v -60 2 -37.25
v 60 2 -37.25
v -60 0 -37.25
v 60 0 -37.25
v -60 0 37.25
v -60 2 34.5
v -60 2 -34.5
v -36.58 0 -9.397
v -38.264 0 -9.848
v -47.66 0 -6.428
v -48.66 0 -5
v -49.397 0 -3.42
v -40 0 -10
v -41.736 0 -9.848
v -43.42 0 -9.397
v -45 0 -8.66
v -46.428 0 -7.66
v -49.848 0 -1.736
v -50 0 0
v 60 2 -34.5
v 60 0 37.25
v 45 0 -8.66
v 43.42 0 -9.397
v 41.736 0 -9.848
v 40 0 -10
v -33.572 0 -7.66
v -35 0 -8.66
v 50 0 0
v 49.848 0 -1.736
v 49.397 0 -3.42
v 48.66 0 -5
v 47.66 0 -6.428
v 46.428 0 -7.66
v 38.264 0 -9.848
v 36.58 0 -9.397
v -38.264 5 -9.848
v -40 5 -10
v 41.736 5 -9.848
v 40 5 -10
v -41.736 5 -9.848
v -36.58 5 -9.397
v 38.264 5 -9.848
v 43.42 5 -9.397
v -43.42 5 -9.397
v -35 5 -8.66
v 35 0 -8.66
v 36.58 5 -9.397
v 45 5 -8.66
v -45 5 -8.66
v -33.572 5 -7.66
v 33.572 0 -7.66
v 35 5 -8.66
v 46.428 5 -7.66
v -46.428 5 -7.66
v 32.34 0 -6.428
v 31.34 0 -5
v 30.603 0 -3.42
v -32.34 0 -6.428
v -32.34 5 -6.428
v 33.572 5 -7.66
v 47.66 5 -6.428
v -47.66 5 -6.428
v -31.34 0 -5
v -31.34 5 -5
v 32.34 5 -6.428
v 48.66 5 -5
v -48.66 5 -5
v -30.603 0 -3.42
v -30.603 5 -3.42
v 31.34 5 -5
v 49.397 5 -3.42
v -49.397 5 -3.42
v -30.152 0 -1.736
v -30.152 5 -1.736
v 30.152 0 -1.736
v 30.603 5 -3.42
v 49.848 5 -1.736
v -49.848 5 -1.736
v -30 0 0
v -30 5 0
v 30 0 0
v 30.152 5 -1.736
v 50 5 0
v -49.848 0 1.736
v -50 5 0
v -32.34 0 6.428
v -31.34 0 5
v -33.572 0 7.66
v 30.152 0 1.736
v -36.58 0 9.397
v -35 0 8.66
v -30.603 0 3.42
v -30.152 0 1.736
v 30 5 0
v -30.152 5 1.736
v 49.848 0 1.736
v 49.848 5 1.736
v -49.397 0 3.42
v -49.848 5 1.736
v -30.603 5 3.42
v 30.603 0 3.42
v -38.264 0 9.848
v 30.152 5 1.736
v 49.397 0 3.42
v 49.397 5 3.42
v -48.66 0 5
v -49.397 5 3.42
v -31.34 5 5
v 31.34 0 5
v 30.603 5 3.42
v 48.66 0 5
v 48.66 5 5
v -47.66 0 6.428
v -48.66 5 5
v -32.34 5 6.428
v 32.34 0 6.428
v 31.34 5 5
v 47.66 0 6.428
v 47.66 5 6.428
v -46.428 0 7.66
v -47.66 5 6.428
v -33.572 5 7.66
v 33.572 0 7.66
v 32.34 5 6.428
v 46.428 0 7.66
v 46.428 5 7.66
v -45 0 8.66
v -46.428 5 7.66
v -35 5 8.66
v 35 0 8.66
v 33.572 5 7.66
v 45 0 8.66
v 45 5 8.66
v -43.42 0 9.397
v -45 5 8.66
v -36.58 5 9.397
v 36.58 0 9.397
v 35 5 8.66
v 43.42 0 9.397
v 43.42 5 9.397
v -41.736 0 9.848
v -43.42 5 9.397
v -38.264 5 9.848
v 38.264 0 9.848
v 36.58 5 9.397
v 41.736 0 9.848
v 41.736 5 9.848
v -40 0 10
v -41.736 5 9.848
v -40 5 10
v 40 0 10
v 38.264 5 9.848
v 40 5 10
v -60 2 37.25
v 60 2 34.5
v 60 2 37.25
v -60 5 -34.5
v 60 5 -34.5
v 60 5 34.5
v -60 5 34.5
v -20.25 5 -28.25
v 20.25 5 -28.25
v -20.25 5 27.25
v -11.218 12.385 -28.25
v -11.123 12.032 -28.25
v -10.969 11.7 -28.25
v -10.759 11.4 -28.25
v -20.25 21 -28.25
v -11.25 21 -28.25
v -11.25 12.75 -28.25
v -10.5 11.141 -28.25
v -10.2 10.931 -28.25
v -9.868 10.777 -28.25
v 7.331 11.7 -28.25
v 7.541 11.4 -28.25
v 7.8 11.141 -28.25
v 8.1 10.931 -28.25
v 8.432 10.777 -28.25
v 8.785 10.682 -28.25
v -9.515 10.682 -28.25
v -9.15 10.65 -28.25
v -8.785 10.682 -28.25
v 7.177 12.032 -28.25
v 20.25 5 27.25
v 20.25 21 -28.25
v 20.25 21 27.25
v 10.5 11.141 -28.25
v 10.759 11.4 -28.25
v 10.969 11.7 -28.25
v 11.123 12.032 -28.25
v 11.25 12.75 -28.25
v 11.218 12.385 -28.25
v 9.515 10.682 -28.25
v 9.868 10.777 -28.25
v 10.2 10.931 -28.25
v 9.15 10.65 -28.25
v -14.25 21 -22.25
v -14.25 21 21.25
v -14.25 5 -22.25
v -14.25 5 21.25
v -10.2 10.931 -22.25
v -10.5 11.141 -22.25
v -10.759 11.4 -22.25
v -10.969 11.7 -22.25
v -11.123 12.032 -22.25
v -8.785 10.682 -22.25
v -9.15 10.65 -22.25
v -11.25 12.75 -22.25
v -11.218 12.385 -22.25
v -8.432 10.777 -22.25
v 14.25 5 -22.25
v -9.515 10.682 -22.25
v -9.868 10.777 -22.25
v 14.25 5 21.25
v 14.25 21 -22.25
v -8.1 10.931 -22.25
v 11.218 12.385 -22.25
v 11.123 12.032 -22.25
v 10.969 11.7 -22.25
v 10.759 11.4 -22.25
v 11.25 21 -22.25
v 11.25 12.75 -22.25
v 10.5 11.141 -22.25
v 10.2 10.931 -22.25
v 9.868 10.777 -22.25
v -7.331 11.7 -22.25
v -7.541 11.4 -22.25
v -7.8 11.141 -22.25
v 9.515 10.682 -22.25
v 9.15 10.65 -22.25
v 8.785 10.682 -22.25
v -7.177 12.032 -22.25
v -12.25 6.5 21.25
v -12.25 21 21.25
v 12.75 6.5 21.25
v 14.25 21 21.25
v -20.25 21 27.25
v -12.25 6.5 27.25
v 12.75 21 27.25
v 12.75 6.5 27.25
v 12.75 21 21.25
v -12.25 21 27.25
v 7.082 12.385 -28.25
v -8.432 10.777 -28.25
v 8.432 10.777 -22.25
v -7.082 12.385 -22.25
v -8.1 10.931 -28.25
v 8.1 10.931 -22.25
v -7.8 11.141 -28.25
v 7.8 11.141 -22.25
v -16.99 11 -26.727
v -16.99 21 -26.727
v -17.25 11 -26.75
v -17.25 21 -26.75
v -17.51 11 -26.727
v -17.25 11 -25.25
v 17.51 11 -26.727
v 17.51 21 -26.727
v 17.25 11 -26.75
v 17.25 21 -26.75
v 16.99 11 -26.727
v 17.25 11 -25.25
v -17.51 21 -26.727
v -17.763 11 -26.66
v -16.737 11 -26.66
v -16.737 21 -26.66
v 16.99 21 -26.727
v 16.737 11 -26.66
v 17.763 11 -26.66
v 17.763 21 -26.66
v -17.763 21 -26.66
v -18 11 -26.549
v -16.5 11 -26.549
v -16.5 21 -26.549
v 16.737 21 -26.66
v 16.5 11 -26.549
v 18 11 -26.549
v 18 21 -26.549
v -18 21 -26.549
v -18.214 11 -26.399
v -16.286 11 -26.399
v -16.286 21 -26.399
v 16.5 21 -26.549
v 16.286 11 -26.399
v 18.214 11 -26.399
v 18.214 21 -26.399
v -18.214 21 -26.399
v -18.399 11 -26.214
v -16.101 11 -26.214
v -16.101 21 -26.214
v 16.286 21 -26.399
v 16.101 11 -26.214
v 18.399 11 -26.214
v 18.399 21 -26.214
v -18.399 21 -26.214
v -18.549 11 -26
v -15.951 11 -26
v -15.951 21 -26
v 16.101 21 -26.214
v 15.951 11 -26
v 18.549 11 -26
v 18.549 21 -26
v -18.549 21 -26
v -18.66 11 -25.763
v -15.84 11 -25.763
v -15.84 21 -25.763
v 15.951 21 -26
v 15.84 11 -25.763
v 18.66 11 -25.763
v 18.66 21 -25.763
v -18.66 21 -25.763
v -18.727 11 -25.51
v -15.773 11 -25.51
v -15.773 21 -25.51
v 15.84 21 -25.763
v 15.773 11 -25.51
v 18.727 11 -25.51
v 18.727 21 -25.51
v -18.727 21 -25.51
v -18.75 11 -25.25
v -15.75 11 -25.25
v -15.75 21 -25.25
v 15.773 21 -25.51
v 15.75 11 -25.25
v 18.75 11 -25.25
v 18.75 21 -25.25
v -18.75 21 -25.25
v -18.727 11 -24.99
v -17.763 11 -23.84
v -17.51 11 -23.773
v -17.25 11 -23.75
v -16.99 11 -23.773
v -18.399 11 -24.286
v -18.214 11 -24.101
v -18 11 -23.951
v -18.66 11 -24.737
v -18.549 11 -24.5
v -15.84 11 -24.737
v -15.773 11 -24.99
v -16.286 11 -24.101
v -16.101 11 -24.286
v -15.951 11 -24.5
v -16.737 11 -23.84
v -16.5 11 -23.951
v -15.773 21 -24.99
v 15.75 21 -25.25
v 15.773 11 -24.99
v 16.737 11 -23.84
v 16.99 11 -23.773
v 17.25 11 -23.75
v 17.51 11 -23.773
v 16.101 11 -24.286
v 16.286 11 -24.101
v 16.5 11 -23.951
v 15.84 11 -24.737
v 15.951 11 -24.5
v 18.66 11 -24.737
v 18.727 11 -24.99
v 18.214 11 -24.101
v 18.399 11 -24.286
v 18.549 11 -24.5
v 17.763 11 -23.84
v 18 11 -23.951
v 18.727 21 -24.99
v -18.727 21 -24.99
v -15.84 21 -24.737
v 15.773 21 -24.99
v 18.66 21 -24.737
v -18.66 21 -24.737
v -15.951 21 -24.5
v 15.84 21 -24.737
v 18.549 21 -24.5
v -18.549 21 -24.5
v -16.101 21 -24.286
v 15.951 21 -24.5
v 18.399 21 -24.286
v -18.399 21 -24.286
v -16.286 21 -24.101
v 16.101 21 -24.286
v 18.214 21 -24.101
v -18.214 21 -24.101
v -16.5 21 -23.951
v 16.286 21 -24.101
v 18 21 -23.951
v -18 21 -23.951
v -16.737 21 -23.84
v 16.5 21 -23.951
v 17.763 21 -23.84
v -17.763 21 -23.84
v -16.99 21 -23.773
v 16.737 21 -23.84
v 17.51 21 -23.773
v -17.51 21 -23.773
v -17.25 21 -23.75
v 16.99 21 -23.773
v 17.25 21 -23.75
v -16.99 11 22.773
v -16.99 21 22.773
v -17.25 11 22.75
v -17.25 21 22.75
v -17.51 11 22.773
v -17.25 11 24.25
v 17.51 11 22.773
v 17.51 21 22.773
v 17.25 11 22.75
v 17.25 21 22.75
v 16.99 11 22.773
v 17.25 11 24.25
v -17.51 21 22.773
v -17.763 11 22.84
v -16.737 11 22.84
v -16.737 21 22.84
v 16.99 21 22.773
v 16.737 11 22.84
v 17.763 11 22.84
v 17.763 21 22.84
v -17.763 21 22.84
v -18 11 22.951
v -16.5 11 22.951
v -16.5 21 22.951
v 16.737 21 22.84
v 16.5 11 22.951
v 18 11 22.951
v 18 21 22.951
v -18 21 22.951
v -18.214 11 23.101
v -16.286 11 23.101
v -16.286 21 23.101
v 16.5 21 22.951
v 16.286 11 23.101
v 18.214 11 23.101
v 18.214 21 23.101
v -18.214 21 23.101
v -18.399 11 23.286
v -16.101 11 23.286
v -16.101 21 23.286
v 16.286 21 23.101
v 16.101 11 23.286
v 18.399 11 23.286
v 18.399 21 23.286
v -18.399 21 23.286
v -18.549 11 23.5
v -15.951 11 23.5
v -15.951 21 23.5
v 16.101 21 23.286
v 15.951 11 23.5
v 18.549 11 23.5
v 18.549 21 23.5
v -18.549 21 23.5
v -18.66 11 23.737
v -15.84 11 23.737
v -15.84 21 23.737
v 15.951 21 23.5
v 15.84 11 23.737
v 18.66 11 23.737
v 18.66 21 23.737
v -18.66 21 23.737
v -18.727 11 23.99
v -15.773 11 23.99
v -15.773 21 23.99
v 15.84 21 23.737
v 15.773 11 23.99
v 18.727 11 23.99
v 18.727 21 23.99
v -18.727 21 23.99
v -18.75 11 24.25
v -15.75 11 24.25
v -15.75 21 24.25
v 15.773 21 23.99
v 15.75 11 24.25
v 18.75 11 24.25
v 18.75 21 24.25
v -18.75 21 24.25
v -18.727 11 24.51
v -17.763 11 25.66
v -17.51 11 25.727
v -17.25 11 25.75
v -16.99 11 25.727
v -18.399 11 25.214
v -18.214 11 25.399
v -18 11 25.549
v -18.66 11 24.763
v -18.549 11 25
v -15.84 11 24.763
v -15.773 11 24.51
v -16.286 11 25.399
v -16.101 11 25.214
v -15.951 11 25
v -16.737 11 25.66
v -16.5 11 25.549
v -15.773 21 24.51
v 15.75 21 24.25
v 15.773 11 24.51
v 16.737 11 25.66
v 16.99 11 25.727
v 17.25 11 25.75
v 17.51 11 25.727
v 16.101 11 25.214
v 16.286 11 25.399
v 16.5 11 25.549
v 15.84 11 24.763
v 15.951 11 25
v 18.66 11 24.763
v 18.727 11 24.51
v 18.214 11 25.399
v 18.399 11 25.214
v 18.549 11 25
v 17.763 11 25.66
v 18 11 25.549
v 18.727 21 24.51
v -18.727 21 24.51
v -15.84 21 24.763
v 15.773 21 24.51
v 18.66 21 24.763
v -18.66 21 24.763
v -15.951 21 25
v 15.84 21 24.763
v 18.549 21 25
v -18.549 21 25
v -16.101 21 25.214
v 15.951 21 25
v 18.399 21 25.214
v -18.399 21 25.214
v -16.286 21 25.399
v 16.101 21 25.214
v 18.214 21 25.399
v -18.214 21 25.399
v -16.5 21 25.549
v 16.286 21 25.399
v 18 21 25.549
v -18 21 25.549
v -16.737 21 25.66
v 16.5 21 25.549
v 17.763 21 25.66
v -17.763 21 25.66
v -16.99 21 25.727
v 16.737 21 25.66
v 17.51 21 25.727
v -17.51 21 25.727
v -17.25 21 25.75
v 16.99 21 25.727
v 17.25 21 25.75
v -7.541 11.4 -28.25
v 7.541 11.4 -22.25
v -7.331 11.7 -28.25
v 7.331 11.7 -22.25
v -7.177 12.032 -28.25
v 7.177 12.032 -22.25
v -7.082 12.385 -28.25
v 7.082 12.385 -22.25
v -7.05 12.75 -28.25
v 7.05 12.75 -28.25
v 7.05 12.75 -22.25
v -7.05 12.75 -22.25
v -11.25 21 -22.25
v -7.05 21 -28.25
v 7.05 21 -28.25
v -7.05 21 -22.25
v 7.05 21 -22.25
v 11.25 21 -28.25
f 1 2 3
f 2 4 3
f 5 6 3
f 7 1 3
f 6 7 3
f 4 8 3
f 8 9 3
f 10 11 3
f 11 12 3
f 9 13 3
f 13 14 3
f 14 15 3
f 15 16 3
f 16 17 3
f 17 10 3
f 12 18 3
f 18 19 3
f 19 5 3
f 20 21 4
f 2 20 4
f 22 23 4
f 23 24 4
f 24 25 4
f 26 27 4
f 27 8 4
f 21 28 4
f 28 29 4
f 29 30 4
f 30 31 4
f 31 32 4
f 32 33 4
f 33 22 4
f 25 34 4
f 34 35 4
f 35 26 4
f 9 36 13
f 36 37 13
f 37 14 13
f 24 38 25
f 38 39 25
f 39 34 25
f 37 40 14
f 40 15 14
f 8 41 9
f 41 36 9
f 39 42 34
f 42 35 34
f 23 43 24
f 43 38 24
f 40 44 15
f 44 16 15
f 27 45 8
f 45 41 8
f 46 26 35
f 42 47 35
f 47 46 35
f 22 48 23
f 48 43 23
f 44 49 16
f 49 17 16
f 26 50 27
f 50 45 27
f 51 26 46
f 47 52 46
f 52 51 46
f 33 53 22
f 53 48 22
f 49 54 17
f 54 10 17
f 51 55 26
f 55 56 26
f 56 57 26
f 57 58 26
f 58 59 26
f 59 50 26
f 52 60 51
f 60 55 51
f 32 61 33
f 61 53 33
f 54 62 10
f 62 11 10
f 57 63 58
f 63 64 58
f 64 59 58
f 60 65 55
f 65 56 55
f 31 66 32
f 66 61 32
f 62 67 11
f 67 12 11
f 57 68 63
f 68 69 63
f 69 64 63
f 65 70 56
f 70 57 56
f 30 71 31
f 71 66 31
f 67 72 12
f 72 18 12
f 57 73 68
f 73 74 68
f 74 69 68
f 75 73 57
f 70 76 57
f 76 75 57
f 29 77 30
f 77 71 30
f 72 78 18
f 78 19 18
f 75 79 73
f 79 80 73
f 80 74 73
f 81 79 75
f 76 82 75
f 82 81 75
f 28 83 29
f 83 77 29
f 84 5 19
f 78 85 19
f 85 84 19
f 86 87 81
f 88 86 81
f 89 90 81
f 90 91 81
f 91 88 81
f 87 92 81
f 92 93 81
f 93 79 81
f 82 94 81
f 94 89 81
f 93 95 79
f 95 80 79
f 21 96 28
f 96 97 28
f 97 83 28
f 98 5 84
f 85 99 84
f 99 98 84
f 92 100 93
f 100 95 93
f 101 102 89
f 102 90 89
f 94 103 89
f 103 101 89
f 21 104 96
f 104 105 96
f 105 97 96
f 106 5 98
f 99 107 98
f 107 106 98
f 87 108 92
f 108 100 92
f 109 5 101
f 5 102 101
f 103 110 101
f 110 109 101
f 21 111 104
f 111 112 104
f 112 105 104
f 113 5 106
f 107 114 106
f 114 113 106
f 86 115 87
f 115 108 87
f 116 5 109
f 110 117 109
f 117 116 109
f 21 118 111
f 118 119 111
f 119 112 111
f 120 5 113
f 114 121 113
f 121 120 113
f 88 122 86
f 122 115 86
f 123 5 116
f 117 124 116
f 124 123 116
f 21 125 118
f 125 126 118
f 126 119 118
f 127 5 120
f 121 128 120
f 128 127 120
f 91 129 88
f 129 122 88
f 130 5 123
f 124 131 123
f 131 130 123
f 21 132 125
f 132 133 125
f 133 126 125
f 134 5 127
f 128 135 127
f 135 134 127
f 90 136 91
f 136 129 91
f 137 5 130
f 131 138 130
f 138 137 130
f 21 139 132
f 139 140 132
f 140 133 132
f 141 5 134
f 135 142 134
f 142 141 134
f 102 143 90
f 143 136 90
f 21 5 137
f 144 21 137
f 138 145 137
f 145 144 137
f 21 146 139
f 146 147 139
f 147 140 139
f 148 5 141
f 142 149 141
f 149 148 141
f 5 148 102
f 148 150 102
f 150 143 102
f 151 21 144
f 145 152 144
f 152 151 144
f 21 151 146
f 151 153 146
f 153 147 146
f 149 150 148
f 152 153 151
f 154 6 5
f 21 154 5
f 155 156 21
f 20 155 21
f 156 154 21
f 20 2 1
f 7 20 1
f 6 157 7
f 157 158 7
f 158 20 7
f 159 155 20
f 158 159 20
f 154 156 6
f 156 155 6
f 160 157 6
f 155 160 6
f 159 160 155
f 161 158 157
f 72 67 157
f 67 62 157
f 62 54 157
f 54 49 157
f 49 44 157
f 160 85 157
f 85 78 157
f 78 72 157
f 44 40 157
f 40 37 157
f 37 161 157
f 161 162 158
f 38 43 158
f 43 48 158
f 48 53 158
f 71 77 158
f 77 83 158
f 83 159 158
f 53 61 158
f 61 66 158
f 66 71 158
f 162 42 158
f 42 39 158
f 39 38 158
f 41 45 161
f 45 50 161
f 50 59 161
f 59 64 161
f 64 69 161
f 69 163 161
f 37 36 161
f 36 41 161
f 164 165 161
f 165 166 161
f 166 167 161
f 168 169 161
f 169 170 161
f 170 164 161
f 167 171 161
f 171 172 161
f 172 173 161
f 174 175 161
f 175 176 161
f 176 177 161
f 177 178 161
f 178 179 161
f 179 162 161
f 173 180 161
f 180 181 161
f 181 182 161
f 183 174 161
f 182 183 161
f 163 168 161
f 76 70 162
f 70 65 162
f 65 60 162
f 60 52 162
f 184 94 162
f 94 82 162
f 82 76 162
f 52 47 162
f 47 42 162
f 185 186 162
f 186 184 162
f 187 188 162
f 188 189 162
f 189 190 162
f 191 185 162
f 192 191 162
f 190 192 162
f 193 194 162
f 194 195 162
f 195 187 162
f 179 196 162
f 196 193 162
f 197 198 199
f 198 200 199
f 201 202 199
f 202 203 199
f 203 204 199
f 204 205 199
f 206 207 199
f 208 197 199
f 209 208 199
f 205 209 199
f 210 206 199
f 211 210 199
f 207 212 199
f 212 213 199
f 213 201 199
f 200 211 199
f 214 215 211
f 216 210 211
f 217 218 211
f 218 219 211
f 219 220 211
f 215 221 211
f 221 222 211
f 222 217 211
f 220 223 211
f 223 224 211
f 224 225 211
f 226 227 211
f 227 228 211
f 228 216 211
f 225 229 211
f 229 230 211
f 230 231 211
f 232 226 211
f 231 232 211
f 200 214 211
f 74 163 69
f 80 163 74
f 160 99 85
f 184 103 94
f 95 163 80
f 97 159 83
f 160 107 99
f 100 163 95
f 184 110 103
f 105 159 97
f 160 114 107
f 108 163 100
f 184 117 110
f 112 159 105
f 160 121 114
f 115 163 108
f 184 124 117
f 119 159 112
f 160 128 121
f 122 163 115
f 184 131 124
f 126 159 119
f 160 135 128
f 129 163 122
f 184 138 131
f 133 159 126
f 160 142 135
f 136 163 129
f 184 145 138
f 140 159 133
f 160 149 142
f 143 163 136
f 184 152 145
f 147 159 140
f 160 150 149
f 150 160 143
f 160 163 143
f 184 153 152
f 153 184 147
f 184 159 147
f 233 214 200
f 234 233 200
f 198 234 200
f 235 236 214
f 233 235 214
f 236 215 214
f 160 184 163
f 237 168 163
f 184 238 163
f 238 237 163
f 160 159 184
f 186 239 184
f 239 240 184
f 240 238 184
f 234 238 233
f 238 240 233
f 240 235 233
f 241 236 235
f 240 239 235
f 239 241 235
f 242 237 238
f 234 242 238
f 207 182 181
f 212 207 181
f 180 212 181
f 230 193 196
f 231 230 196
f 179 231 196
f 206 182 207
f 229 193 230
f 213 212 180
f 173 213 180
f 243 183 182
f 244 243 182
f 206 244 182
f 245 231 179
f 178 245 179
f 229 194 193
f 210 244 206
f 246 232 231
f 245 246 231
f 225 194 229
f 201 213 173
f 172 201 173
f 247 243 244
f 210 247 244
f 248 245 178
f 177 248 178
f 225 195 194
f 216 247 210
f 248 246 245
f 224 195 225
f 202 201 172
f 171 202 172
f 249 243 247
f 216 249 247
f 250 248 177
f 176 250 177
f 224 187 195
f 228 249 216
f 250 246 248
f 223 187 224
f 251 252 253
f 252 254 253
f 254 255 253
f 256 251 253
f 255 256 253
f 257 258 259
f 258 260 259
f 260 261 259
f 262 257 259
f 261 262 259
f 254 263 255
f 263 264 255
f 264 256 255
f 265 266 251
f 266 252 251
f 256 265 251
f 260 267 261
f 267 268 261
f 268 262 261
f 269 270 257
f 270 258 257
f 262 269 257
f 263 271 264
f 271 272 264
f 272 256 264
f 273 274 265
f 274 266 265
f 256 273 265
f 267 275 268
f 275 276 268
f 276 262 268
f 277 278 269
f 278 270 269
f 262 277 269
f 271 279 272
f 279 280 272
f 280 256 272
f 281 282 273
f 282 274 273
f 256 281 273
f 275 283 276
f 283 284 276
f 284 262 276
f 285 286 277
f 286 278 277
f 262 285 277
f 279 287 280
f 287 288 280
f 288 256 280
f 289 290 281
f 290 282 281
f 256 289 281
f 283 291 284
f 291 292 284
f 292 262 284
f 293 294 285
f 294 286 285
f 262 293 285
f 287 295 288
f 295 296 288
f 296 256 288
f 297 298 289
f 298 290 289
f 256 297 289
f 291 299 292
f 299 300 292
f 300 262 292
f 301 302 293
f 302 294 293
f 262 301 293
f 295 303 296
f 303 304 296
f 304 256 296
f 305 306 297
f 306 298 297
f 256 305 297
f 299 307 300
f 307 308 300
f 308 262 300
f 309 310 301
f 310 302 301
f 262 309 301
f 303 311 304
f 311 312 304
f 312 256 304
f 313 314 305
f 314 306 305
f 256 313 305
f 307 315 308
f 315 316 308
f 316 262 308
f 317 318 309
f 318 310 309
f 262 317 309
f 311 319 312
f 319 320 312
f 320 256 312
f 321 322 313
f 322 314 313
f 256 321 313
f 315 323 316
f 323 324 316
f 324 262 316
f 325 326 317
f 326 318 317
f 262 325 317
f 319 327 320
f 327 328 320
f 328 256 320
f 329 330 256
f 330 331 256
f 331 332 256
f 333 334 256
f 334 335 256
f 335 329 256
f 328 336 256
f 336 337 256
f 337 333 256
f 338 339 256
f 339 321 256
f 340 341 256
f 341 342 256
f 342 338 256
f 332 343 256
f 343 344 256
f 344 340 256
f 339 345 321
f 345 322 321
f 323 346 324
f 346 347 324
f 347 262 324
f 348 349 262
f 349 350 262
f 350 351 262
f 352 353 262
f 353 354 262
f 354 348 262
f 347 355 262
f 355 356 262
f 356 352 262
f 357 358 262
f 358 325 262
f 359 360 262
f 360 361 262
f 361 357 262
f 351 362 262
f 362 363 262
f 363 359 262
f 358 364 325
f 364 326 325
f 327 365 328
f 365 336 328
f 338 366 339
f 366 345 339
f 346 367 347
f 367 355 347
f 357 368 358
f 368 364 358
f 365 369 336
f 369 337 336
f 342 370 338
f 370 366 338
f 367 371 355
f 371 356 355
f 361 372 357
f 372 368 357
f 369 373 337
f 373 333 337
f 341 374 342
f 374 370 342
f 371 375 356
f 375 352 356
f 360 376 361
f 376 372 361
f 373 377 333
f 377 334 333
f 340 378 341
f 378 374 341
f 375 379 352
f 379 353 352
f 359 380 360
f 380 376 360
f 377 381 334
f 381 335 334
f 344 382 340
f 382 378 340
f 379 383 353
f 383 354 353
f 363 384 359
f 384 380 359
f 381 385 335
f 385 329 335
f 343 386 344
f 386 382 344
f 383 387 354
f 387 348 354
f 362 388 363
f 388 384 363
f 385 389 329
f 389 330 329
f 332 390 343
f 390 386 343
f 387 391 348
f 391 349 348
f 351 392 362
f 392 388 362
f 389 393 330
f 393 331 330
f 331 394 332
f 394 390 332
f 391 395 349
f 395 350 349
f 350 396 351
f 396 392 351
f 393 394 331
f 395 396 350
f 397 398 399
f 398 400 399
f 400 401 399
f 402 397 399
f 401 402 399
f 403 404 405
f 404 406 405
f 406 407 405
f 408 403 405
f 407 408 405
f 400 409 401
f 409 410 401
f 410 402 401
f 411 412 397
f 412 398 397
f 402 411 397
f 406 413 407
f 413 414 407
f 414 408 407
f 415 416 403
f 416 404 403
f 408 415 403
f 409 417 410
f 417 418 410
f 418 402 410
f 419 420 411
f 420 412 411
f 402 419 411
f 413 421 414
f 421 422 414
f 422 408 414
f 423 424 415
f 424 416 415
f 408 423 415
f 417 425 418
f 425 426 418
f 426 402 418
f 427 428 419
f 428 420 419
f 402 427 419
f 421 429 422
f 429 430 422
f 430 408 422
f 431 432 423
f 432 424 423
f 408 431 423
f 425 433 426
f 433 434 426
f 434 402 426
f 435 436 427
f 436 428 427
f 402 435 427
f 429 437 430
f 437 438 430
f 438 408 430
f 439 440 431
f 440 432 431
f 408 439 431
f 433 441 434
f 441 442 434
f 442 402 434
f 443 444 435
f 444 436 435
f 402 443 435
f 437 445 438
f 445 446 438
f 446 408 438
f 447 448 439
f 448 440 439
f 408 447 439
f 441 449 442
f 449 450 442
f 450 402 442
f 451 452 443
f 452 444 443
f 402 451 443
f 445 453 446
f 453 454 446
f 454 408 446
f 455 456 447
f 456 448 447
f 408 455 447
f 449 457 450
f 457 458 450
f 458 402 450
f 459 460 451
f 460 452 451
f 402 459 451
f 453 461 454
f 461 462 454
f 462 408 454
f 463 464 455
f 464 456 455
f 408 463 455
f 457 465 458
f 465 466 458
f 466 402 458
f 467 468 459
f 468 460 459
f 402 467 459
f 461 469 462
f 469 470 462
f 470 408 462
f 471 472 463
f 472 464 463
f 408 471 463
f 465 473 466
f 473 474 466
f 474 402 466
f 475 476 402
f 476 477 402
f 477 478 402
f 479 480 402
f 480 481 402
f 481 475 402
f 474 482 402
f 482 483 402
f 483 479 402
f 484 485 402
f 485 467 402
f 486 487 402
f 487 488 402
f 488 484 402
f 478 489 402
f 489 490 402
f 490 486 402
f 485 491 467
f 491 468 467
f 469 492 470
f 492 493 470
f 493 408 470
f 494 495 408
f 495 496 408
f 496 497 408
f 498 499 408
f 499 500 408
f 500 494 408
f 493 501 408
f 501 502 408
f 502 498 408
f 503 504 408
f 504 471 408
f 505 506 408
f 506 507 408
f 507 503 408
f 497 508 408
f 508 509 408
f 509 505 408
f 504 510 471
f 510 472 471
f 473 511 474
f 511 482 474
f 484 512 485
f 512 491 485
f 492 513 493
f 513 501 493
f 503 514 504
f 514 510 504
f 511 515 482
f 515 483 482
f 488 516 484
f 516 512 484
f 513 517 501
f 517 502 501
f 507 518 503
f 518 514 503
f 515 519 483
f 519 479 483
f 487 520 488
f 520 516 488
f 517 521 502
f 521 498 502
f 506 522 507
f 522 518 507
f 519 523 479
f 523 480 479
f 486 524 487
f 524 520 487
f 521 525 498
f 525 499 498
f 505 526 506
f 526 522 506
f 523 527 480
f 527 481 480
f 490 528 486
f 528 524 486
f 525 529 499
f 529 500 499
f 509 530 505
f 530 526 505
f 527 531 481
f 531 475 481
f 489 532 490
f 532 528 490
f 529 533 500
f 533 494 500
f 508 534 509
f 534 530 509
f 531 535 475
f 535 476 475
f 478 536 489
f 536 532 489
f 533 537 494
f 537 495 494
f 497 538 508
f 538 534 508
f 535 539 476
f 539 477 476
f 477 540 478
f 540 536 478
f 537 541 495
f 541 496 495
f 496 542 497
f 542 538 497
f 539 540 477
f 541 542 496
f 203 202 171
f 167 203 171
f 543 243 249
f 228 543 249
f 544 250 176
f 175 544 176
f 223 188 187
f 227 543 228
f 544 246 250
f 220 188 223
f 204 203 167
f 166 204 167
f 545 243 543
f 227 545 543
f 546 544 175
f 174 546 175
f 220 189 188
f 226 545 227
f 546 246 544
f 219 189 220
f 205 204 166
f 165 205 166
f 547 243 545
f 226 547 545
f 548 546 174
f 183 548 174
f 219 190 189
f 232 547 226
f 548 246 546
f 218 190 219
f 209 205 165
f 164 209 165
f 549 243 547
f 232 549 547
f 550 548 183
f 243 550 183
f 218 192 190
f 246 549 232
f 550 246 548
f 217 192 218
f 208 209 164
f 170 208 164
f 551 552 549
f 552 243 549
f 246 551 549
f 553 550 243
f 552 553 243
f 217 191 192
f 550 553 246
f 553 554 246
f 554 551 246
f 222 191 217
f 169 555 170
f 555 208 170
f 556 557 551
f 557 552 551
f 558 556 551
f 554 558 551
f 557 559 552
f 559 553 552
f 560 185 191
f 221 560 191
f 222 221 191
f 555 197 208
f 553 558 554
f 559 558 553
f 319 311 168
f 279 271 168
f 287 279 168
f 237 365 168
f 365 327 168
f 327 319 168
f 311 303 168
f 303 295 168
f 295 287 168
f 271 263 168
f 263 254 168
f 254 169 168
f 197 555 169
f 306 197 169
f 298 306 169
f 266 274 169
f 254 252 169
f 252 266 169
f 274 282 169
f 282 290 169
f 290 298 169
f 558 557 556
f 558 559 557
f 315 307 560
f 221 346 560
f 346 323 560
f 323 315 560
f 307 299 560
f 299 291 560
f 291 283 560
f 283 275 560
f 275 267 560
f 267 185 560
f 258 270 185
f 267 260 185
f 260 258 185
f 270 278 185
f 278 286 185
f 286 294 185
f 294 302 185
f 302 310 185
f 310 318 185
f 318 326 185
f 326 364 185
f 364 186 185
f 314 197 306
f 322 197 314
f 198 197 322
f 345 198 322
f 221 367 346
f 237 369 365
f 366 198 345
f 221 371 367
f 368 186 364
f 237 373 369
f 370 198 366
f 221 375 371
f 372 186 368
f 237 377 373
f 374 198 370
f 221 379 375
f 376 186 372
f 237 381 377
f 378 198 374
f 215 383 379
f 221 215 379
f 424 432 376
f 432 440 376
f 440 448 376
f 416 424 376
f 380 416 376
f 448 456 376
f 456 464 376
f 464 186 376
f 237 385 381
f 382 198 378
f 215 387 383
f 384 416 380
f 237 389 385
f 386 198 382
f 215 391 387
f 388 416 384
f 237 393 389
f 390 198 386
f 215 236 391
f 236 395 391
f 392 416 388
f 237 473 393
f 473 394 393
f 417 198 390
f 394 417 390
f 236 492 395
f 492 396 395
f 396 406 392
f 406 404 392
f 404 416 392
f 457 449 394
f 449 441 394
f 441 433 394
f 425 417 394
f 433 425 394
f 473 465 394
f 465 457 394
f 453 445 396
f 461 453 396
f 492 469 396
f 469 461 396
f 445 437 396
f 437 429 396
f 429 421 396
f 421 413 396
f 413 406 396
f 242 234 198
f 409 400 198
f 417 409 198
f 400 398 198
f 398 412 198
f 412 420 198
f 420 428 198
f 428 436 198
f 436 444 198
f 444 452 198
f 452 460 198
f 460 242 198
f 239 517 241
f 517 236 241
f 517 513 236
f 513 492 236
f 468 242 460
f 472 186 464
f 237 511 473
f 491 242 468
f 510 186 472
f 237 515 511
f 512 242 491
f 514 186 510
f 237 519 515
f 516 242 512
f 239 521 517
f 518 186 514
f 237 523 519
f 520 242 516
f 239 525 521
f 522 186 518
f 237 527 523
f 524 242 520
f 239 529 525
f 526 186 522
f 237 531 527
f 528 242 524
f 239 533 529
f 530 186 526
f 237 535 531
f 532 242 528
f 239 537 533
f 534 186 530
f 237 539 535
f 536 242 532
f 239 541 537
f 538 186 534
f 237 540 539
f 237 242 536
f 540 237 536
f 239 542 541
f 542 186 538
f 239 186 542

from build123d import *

# Parameters (mm, degrees)
SKETCH1_W               = 120
SKETCH1_H               = 74.5
BOSS_EXTRUDE1_DEPTH     = 2
SKETCH2_W               = 120
SKETCH2_H               = 69
BOSS_EXTRUDE2_DEPTH     = 3
SKETCH3_W               = 40.5
SKETCH3_H               = 55.5
SKETCH3_W_2             = 28.5
SKETCH3_H_2             = 43.5
BOSS_EXTRUDE3_DEPTH     = 16
SKETCH4_W               = 25
SKETCH4_H               = 14.5
CUT_EXTRUDE1_DEPTH      = 16
CUT_EXTRUDE2_DEPTH      = 16
SKETCH6_R               = 1.5
CUT_EXTRUDE3_DEPTH      = 10
SKETCH7_R               = 10
CUT_EXTRUDE4_DEPTH      = 17
CUT_EXTRUDE4_DEPTH_BACK = 6


with BuildPart() as part:
    # Sketch1 → Boss-Extrude1 (new body)
    with BuildSketch(Plane(origin=(0, 0, 0), x_dir=(1, 0, 0), z_dir=(0, 1, 0))):
        Rectangle(SKETCH1_W, SKETCH1_H)
    extrude(amount=BOSS_EXTRUDE1_DEPTH)

    # Sketch2 → Boss-Extrude2 (add)
    with BuildSketch(Plane(origin=(0, 2, 0), x_dir=(1, 0, 0), z_dir=(0, 1, 0))):
        Rectangle(SKETCH2_W, SKETCH2_H)
    extrude(amount=BOSS_EXTRUDE2_DEPTH)

    # Sketch3 → Boss-Extrude3 (add)
    with BuildSketch(Plane(origin=(0, 5, 0), x_dir=(1, 0, 0), z_dir=(0, 1, 0))):
        with Locations((0, 0.5)):
            Rectangle(SKETCH3_W, SKETCH3_H)
        with Locations((0, 0.5)):
            Rectangle(SKETCH3_W_2, SKETCH3_H_2, mode=Mode.SUBTRACT)
    extrude(amount=BOSS_EXTRUDE3_DEPTH)

    # Sketch4 → Cut-Extrude1 (cut)
    with BuildSketch(Plane.XY.offset(27.25)):
        with Locations((0.25, 13.75)):
            Rectangle(SKETCH4_W, SKETCH4_H)
    extrude(amount=-CUT_EXTRUDE1_DEPTH, mode=Mode.SUBTRACT)

    # Sketch5 → Cut-Extrude2 (cut)
    with BuildSketch(Plane(origin=(0, 0, -28.25), x_dir=(-1, 0, 0), z_dir=(0, 0, -1))):
        with BuildLine():
            Line((-7.05, 21), (-11.25, 21))
            Line((-11.25, 21), (-11.25, 12.75))
            ThreePointArc((-11.25, 12.75), (-9.15, 14.85), (-7.05, 12.75))
            Line((-7.05, 12.75), (-7.05, 21))
        make_face()
        with BuildLine():
            ThreePointArc((-7.05, 12.75), (-9.15, 14.85), (-11.25, 12.75))
            Line((-11.25, 12.75), (-7.05, 12.75))
        make_face()
        with BuildLine():
            Line((-7.05, 12.75), (-11.25, 12.75))
            ThreePointArc((-11.25, 12.75), (-9.15, 10.65), (-7.05, 12.75))
        make_face()
        with BuildLine():
            ThreePointArc((11.25, 12.75), (9.15, 14.85), (7.05, 12.75))
            Line((7.05, 12.75), (11.25, 12.75))
        make_face()
        with BuildLine():
            Line((11.25, 12.75), (7.05, 12.75))
            ThreePointArc((7.05, 12.75), (9.15, 10.65), (11.25, 12.75))
        make_face()
        with BuildLine():
            Line((11.25, 21), (7.05, 21))
            Line((7.05, 21), (7.05, 12.75))
            ThreePointArc((7.05, 12.75), (9.15, 14.85), (11.25, 12.75))
            Line((11.25, 12.75), (11.25, 21))
        make_face()
    extrude(amount=-CUT_EXTRUDE2_DEPTH, mode=Mode.SUBTRACT)

    # Sketch6 → Cut-Extrude3 (cut)
    with BuildSketch(Plane(origin=(0, 21, 0), x_dir=(1, 0, 0), z_dir=(0, 1, 0))):
        with Locations((17.25, 25.25)):
            Circle(SKETCH6_R)
        with Locations((17.25, -24.25)):
            Circle(SKETCH6_R)
        with Locations((-17.25, -24.25)):
            Circle(SKETCH6_R)
        with Locations((-17.25, 25.25)):
            Circle(SKETCH6_R)
    extrude(amount=-CUT_EXTRUDE3_DEPTH, mode=Mode.SUBTRACT)

    # Sketch7 → Cut-Extrude4 (cut, two sides)
    with BuildSketch(Plane(origin=(0, 5, 0), x_dir=(1, 0, 0), z_dir=(0, 1, 0))) as cut_extrude4_sk:
        with Locations((-40, 0)):
            Circle(SKETCH7_R)
        with Locations((40, 0)):
            Circle(SKETCH7_R)
    extrude(amount=CUT_EXTRUDE4_DEPTH, mode=Mode.SUBTRACT)
    extrude(cut_extrude4_sk.sketch, amount=-CUT_EXTRUDE4_DEPTH_BACK, mode=Mode.SUBTRACT)


solid = part.part
